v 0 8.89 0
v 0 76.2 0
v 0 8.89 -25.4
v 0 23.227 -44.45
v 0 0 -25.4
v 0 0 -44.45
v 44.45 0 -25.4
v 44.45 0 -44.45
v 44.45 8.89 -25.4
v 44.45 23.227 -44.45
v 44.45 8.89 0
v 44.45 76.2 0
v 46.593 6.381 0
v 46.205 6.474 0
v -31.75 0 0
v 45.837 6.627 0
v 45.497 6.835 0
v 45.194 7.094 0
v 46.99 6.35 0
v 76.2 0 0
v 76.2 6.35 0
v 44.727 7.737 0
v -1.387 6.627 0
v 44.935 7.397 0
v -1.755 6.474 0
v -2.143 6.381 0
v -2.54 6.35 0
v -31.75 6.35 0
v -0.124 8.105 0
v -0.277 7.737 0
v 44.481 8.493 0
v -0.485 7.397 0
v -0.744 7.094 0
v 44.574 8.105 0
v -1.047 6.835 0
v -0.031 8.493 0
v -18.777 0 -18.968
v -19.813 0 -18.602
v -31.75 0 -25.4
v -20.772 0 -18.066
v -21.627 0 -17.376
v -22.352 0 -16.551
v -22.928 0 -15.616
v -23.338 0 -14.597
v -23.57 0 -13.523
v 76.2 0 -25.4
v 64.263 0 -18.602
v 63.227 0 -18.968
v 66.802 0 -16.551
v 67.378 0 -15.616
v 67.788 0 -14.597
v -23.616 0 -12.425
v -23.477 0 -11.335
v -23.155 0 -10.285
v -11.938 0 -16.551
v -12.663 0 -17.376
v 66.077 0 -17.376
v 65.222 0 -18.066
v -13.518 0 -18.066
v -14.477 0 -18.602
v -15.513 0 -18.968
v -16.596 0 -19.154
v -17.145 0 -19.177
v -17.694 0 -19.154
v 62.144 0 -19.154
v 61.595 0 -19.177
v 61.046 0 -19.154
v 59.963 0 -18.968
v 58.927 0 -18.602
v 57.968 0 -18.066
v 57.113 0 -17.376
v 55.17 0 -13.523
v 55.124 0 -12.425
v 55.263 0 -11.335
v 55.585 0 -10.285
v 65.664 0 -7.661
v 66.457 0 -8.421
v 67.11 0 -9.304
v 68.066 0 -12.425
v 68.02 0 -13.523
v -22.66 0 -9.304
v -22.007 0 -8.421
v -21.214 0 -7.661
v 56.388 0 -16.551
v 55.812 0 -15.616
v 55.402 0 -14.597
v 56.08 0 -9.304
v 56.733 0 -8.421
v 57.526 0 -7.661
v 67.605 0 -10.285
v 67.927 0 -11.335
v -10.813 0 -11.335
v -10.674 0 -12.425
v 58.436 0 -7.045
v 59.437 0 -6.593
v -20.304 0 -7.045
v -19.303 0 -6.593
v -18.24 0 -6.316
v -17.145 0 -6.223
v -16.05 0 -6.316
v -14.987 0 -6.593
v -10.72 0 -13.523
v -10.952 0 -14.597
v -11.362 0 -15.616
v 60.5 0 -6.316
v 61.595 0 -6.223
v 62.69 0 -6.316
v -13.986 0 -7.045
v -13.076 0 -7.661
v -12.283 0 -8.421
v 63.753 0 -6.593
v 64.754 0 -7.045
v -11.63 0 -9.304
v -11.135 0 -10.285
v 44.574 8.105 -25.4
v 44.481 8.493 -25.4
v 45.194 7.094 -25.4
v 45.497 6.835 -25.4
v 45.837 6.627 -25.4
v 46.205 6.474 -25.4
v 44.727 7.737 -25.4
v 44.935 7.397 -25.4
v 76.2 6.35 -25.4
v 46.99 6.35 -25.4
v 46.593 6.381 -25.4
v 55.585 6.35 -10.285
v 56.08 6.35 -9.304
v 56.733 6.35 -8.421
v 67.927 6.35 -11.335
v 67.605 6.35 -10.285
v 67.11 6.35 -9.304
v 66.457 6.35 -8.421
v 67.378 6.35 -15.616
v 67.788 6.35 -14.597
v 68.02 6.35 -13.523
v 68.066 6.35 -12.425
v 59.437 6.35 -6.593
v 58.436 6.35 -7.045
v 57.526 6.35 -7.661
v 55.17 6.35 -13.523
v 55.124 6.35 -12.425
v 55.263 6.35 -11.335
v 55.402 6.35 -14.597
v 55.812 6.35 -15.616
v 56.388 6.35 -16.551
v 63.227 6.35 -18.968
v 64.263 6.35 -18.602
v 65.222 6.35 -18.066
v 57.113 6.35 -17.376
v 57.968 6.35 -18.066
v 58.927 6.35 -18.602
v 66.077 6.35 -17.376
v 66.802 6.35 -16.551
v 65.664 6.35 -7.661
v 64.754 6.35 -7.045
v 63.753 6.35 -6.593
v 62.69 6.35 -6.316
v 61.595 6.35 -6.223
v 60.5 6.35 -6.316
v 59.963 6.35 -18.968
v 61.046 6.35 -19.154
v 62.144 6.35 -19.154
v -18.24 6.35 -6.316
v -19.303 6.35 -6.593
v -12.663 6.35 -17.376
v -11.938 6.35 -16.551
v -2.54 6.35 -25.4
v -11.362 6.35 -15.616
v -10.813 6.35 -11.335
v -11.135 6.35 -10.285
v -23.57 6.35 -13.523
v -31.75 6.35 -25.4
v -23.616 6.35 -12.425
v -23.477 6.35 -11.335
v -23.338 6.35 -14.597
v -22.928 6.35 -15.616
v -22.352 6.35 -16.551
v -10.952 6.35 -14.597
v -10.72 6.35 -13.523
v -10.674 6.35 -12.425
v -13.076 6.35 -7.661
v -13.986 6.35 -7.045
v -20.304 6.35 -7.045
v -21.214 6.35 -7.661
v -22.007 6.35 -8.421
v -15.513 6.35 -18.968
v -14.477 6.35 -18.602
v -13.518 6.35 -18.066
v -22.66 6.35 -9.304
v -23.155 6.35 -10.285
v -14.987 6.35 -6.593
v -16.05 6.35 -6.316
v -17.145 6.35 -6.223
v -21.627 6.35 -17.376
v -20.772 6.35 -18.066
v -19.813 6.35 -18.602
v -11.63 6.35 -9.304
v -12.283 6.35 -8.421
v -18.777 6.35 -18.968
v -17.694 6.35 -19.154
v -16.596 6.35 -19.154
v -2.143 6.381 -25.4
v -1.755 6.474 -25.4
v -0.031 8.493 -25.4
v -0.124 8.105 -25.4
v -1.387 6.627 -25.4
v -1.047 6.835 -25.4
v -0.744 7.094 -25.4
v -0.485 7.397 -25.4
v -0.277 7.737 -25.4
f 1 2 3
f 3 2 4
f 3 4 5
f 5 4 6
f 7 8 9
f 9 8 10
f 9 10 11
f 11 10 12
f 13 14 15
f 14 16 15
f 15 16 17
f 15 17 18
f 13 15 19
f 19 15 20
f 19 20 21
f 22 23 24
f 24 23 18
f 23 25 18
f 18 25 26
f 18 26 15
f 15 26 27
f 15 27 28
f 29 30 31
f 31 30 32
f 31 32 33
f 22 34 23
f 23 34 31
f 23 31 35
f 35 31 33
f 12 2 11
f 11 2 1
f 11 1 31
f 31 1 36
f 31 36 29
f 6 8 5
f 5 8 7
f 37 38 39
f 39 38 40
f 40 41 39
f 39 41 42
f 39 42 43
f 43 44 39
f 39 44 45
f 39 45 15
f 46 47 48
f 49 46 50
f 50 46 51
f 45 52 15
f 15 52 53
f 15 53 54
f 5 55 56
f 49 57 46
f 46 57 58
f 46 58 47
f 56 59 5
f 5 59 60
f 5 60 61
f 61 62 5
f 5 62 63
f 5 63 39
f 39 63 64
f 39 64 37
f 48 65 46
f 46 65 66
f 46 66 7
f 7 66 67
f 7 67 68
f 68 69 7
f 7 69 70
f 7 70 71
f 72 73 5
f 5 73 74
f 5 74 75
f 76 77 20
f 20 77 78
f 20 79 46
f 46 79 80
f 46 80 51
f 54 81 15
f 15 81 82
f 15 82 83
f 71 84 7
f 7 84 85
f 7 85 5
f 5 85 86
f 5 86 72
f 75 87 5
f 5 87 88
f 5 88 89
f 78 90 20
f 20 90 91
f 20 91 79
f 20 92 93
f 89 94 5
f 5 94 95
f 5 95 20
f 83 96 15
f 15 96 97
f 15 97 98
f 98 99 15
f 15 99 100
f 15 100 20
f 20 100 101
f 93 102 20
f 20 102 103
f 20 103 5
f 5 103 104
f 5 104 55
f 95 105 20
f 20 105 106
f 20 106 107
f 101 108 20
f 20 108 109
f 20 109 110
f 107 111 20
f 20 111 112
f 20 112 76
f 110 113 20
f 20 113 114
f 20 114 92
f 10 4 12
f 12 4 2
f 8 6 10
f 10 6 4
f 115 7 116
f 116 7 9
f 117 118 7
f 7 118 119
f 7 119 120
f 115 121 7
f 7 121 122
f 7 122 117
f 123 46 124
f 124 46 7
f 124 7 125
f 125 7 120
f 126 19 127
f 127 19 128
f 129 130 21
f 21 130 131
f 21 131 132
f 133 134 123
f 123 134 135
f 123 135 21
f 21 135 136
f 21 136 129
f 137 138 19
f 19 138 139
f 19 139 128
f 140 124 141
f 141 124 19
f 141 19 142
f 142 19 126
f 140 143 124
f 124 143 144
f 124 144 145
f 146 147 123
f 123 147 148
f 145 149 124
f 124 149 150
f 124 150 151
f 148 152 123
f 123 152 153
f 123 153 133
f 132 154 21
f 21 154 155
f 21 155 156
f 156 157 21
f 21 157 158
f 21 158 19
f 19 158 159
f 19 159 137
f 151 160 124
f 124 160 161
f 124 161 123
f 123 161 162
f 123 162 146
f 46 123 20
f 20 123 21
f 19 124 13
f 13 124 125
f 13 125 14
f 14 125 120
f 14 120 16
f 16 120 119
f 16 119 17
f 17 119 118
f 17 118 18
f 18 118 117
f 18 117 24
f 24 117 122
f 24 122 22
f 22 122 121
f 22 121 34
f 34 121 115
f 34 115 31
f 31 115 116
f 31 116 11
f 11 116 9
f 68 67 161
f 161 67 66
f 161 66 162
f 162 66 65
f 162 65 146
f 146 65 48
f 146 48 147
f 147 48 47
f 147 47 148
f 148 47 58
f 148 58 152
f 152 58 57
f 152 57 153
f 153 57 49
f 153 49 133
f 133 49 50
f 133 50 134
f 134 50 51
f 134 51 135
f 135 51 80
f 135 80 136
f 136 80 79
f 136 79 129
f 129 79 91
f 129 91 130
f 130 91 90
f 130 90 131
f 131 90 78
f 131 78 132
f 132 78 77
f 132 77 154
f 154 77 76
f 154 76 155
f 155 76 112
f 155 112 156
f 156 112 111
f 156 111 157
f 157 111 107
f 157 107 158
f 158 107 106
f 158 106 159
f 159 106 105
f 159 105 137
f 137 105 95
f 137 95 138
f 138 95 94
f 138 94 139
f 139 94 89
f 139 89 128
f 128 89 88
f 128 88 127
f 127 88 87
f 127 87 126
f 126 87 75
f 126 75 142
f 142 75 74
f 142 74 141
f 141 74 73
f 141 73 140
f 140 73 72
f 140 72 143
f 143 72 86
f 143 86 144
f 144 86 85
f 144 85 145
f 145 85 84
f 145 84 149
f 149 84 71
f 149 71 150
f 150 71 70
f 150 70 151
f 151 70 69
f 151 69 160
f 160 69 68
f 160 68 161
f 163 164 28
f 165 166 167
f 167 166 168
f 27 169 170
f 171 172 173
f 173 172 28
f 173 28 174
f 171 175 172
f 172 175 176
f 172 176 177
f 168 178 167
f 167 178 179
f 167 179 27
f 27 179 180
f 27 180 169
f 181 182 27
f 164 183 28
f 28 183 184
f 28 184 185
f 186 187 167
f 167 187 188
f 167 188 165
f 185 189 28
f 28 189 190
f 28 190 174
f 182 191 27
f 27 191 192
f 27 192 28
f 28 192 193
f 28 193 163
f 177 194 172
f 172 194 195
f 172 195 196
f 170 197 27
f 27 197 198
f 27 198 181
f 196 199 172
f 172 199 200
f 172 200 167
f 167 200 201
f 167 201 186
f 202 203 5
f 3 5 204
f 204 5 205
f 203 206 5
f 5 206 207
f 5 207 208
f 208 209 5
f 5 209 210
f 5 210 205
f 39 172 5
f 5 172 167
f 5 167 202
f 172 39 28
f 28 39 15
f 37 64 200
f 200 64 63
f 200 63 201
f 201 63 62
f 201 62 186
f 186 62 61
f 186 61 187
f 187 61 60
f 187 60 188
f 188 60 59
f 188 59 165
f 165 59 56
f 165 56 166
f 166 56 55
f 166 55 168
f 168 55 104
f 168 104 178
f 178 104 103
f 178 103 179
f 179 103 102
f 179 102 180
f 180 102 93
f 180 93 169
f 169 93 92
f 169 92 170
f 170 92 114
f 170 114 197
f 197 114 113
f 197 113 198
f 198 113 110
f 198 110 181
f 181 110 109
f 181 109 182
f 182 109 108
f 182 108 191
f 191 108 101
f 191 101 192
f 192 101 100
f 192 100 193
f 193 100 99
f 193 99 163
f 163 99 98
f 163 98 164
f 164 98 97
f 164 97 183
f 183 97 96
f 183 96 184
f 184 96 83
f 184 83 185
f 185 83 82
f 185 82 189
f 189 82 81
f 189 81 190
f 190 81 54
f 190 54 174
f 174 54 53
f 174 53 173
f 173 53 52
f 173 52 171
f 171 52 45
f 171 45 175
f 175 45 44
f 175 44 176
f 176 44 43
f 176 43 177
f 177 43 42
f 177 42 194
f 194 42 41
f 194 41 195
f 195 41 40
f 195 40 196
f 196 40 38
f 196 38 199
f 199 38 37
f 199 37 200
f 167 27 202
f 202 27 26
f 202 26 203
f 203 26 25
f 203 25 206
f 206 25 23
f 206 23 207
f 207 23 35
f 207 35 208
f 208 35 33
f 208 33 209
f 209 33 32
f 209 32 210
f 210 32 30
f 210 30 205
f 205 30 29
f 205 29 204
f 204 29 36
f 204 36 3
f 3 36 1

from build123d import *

# Parameters (mm, degrees)
SKETCH1_W           = 44.45
SKETCH1_H           = 88.9
BOSS_EXTRUDE1_DEPTH = 76.2
CUT_EXTRUDE1_DEPTH  = 76.2
SKETCH3_W           = 25.4
SKETCH3_H           = 6.35
BOSS_EXTRUDE2_DEPTH = 31.75
FILLET1_R           = 2.54
SKETCH4_R           = 6.477
CUT_EXTRUDE2_DEPTH  = 38.1
SKETCH5_W           = 25.4
SKETCH5_H           = 6.35
BOSS_EXTRUDE3_DEPTH = 31.75
FILLET2_R           = 2.54


with BuildPart() as part:
    # Sketch1 → Boss-Extrude1 (new body)
    with BuildSketch(Plane(origin=(0, 0, 0), x_dir=(1, 0, 0), z_dir=(0, 1, 0))):
        with Locations((22.225, 44.45)):
            Rectangle(SKETCH1_W, SKETCH1_H)
    extrude(amount=BOSS_EXTRUDE1_DEPTH)

    # Sketch2 → Cut-Extrude1 (cut)
    with BuildSketch(Plane(origin=(44.45, 0, 0), x_dir=(0, 0, -1), z_dir=(1, 0, 0))):
        Polygon((44.45, 23.226552809), (44.45, 0), (88.9, 0), (88.9, 76.2), (0, 76.2), align=None)
    extrude(amount=-CUT_EXTRUDE1_DEPTH, mode=Mode.SUBTRACT)

    # Sketch3 → Boss-Extrude2 (add)
    with BuildSketch(Plane(origin=(44.45, 0, 0), x_dir=(0, 0, -1), z_dir=(1, 0, 0))):
        with Locations((12.7, 3.175)):
            Rectangle(SKETCH3_W, SKETCH3_H)
    extrude(amount=BOSS_EXTRUDE2_DEPTH)

    # Fillet1
    fillet1_edges = [part.edges().sort_by_distance(p)[0] for p in [
        (44.45, 6.35, -12.7),
    ]]
    fillet(fillet1_edges, radius=FILLET1_R)

    # Sketch4 → Cut-Extrude2 (cut)
    with BuildSketch(Plane(origin=(0, 6.35, 0), x_dir=(1, 0, 0), z_dir=(0, 1, 0))):
        with Locations(Location((61.595, 12.7, 0), (0, 0, 270))):
            Circle(SKETCH4_R)
    cut_extrude2 = extrude(amount=-CUT_EXTRUDE2_DEPTH, mode=Mode.SUBTRACT)

    # Sketch5 → Boss-Extrude3 (add)
    with BuildSketch(Plane.ZY):
        with Locations((-12.7, 3.175)):
            Rectangle(SKETCH5_W, SKETCH5_H)
    extrude(amount=BOSS_EXTRUDE3_DEPTH)

    # Mirror4: Cut-Extrude2 across plane
    add(cut_extrude2.mirror(Plane(origin=(22.225, 0, 0), x_dir=(0, 0, 1), z_dir=(1, 0, 0))), mode=Mode.SUBTRACT)

    # Fillet2
    fillet2_edges = [part.edges().sort_by_distance(p)[0] for p in [
        (0, 6.35, -12.7),
    ]]
    fillet(fillet2_edges, radius=FILLET2_R)


solid = part.part
